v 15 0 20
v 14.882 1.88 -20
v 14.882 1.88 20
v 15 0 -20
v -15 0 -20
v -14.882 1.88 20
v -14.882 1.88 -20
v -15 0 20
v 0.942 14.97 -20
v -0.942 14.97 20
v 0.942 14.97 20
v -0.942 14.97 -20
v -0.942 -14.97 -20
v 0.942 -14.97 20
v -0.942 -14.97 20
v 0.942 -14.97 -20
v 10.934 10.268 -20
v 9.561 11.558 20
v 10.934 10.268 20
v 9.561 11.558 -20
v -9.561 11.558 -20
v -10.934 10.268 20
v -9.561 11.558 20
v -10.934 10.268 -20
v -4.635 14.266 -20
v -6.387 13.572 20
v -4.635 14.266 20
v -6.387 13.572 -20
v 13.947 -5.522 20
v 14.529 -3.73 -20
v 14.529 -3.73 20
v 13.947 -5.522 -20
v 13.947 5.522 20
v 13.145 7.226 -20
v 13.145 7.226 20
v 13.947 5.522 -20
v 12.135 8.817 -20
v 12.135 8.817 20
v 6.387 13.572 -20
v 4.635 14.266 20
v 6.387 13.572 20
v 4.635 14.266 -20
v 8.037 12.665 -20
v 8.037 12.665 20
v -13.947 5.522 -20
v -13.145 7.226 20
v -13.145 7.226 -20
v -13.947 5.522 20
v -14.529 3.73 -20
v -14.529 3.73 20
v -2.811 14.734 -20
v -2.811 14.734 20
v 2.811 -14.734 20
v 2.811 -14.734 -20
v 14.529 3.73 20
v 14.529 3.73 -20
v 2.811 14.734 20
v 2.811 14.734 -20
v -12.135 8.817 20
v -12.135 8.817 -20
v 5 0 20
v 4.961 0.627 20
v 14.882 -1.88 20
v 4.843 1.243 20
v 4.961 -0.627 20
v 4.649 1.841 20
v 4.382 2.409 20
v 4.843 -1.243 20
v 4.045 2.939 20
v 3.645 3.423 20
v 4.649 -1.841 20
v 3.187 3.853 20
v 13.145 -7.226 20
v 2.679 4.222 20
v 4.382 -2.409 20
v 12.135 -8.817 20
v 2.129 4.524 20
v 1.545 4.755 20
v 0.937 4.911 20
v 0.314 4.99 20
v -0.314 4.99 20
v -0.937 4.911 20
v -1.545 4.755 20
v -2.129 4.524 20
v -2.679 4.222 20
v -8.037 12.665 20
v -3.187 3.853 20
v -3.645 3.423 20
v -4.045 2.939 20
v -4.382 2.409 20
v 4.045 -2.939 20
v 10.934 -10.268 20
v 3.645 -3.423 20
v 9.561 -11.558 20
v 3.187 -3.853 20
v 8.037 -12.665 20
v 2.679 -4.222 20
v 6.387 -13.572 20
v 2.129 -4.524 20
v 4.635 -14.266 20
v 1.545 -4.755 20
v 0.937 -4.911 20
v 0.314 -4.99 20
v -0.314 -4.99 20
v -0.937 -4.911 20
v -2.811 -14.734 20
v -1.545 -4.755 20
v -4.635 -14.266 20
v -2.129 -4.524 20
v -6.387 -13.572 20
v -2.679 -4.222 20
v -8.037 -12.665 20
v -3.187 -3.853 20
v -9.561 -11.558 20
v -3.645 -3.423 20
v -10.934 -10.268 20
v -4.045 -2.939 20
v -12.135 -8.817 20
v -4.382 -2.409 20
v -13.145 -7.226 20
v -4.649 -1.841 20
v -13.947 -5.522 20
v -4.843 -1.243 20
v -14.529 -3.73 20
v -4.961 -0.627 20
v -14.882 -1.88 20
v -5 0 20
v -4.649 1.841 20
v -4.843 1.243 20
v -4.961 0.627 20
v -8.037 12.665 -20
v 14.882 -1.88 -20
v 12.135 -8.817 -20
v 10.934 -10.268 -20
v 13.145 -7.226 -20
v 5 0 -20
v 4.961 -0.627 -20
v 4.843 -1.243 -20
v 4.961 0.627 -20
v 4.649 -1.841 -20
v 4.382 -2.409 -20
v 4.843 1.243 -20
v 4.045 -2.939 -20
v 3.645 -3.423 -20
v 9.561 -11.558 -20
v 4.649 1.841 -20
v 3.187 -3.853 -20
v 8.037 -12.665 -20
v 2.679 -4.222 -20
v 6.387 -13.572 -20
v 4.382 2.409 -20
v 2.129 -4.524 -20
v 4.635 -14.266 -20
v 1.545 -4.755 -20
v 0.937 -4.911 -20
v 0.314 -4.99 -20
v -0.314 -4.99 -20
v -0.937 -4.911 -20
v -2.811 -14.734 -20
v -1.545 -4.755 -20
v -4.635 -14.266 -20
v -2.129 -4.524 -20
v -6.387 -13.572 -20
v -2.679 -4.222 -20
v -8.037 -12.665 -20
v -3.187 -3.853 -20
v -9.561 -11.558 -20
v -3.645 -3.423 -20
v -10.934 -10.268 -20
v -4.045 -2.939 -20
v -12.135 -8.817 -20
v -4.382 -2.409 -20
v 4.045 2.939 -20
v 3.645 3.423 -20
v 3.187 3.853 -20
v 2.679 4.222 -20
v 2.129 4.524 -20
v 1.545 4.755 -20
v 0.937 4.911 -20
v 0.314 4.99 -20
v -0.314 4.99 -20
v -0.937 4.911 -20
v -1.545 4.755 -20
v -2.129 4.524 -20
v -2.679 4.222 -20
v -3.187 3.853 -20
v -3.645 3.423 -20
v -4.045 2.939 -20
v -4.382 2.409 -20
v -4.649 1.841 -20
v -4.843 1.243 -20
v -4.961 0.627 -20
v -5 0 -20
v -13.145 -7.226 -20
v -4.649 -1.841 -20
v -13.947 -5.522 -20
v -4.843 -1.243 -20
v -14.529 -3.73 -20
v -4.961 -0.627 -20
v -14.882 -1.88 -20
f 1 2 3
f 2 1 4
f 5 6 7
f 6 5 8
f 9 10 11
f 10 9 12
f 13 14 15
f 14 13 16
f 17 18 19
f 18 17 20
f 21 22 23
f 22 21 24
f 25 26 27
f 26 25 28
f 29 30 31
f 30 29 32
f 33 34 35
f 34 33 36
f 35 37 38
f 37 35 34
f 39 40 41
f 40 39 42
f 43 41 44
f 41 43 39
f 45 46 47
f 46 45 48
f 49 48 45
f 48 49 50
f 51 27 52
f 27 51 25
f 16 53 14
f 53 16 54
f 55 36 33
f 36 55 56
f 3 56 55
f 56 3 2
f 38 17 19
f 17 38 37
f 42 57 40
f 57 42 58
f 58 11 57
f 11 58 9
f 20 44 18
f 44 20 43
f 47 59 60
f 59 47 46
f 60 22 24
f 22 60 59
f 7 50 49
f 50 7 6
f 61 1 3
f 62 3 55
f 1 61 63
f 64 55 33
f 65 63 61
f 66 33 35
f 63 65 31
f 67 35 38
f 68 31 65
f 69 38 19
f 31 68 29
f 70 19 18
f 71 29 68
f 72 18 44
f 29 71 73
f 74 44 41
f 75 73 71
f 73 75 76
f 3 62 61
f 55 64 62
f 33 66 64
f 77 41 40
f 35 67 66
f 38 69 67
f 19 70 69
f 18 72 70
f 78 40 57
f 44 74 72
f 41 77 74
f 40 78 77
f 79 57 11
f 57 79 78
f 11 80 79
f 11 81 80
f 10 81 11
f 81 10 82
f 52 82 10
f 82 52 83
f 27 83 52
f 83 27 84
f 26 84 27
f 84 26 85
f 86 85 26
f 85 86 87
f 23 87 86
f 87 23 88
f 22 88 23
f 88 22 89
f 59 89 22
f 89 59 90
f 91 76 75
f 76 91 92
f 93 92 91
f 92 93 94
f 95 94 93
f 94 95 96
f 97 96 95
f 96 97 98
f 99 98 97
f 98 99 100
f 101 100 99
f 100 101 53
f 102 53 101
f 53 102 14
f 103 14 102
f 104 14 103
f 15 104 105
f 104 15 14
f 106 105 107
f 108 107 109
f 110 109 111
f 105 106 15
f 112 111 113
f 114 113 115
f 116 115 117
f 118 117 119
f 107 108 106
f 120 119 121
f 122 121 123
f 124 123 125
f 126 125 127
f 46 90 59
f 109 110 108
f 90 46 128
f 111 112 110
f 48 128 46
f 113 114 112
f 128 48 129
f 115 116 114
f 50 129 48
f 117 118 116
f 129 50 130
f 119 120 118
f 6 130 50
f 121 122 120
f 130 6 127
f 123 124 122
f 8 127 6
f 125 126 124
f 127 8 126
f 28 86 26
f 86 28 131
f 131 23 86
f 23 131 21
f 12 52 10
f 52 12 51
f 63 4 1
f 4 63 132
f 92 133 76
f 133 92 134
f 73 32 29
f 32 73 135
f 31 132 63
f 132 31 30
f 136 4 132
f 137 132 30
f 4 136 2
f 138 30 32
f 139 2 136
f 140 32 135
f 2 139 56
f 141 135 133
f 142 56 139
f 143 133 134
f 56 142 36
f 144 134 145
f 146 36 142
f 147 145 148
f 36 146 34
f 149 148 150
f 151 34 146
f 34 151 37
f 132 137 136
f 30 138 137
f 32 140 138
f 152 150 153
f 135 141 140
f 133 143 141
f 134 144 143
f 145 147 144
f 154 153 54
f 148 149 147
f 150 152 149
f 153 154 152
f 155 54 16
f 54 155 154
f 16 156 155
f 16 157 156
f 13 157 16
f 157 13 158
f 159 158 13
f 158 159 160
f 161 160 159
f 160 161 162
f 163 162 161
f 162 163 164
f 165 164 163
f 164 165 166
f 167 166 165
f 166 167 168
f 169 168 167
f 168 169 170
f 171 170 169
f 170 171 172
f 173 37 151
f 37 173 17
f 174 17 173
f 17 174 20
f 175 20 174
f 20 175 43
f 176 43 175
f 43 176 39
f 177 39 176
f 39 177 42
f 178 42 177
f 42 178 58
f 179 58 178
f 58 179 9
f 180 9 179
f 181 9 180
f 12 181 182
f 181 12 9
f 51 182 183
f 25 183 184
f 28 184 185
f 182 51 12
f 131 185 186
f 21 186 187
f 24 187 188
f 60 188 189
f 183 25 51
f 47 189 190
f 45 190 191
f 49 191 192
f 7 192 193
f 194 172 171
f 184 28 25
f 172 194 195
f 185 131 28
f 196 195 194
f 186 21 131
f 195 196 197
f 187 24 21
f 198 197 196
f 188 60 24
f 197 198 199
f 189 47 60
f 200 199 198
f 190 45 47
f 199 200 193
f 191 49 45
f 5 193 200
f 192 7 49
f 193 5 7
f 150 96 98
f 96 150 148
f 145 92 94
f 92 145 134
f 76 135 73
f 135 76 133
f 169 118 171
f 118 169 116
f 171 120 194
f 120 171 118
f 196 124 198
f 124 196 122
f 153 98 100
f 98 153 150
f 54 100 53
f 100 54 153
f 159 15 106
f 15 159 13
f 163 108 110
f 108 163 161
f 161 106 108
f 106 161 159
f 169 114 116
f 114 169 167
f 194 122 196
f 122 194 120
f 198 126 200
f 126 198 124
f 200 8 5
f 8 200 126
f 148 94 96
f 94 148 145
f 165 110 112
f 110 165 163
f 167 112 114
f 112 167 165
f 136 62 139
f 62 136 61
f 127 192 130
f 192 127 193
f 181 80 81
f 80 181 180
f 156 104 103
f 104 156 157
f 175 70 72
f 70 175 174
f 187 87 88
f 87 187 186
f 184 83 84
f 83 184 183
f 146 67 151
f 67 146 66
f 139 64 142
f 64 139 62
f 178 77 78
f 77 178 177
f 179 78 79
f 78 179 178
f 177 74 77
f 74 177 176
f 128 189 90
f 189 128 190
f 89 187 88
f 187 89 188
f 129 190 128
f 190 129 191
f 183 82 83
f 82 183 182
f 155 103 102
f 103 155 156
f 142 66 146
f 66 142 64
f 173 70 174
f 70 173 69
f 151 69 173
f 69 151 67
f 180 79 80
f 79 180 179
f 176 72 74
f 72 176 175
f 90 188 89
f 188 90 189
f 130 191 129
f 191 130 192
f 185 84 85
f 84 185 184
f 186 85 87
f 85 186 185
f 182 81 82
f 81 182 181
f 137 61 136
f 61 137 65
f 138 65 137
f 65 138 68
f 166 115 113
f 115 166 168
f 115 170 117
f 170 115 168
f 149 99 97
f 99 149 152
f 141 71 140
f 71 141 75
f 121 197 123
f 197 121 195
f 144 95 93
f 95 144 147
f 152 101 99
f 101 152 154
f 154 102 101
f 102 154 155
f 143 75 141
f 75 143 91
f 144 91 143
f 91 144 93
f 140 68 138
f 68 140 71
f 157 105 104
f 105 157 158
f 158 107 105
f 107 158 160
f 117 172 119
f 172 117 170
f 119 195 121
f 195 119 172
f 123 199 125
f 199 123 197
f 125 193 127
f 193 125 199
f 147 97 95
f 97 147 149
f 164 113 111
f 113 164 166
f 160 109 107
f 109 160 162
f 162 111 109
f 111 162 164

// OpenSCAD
$fn = 50;


difference() {
	union() {
		translate(v = [0, 0, -20.0000000000]) {
			cylinder(h = 40, r = 15.0000000000);
		}
	}
	union() {
		translate(v = [0, 0, -100.0000000000]) {
			cylinder(h = 200, r = 5.0000000000);
		}
	}
}
